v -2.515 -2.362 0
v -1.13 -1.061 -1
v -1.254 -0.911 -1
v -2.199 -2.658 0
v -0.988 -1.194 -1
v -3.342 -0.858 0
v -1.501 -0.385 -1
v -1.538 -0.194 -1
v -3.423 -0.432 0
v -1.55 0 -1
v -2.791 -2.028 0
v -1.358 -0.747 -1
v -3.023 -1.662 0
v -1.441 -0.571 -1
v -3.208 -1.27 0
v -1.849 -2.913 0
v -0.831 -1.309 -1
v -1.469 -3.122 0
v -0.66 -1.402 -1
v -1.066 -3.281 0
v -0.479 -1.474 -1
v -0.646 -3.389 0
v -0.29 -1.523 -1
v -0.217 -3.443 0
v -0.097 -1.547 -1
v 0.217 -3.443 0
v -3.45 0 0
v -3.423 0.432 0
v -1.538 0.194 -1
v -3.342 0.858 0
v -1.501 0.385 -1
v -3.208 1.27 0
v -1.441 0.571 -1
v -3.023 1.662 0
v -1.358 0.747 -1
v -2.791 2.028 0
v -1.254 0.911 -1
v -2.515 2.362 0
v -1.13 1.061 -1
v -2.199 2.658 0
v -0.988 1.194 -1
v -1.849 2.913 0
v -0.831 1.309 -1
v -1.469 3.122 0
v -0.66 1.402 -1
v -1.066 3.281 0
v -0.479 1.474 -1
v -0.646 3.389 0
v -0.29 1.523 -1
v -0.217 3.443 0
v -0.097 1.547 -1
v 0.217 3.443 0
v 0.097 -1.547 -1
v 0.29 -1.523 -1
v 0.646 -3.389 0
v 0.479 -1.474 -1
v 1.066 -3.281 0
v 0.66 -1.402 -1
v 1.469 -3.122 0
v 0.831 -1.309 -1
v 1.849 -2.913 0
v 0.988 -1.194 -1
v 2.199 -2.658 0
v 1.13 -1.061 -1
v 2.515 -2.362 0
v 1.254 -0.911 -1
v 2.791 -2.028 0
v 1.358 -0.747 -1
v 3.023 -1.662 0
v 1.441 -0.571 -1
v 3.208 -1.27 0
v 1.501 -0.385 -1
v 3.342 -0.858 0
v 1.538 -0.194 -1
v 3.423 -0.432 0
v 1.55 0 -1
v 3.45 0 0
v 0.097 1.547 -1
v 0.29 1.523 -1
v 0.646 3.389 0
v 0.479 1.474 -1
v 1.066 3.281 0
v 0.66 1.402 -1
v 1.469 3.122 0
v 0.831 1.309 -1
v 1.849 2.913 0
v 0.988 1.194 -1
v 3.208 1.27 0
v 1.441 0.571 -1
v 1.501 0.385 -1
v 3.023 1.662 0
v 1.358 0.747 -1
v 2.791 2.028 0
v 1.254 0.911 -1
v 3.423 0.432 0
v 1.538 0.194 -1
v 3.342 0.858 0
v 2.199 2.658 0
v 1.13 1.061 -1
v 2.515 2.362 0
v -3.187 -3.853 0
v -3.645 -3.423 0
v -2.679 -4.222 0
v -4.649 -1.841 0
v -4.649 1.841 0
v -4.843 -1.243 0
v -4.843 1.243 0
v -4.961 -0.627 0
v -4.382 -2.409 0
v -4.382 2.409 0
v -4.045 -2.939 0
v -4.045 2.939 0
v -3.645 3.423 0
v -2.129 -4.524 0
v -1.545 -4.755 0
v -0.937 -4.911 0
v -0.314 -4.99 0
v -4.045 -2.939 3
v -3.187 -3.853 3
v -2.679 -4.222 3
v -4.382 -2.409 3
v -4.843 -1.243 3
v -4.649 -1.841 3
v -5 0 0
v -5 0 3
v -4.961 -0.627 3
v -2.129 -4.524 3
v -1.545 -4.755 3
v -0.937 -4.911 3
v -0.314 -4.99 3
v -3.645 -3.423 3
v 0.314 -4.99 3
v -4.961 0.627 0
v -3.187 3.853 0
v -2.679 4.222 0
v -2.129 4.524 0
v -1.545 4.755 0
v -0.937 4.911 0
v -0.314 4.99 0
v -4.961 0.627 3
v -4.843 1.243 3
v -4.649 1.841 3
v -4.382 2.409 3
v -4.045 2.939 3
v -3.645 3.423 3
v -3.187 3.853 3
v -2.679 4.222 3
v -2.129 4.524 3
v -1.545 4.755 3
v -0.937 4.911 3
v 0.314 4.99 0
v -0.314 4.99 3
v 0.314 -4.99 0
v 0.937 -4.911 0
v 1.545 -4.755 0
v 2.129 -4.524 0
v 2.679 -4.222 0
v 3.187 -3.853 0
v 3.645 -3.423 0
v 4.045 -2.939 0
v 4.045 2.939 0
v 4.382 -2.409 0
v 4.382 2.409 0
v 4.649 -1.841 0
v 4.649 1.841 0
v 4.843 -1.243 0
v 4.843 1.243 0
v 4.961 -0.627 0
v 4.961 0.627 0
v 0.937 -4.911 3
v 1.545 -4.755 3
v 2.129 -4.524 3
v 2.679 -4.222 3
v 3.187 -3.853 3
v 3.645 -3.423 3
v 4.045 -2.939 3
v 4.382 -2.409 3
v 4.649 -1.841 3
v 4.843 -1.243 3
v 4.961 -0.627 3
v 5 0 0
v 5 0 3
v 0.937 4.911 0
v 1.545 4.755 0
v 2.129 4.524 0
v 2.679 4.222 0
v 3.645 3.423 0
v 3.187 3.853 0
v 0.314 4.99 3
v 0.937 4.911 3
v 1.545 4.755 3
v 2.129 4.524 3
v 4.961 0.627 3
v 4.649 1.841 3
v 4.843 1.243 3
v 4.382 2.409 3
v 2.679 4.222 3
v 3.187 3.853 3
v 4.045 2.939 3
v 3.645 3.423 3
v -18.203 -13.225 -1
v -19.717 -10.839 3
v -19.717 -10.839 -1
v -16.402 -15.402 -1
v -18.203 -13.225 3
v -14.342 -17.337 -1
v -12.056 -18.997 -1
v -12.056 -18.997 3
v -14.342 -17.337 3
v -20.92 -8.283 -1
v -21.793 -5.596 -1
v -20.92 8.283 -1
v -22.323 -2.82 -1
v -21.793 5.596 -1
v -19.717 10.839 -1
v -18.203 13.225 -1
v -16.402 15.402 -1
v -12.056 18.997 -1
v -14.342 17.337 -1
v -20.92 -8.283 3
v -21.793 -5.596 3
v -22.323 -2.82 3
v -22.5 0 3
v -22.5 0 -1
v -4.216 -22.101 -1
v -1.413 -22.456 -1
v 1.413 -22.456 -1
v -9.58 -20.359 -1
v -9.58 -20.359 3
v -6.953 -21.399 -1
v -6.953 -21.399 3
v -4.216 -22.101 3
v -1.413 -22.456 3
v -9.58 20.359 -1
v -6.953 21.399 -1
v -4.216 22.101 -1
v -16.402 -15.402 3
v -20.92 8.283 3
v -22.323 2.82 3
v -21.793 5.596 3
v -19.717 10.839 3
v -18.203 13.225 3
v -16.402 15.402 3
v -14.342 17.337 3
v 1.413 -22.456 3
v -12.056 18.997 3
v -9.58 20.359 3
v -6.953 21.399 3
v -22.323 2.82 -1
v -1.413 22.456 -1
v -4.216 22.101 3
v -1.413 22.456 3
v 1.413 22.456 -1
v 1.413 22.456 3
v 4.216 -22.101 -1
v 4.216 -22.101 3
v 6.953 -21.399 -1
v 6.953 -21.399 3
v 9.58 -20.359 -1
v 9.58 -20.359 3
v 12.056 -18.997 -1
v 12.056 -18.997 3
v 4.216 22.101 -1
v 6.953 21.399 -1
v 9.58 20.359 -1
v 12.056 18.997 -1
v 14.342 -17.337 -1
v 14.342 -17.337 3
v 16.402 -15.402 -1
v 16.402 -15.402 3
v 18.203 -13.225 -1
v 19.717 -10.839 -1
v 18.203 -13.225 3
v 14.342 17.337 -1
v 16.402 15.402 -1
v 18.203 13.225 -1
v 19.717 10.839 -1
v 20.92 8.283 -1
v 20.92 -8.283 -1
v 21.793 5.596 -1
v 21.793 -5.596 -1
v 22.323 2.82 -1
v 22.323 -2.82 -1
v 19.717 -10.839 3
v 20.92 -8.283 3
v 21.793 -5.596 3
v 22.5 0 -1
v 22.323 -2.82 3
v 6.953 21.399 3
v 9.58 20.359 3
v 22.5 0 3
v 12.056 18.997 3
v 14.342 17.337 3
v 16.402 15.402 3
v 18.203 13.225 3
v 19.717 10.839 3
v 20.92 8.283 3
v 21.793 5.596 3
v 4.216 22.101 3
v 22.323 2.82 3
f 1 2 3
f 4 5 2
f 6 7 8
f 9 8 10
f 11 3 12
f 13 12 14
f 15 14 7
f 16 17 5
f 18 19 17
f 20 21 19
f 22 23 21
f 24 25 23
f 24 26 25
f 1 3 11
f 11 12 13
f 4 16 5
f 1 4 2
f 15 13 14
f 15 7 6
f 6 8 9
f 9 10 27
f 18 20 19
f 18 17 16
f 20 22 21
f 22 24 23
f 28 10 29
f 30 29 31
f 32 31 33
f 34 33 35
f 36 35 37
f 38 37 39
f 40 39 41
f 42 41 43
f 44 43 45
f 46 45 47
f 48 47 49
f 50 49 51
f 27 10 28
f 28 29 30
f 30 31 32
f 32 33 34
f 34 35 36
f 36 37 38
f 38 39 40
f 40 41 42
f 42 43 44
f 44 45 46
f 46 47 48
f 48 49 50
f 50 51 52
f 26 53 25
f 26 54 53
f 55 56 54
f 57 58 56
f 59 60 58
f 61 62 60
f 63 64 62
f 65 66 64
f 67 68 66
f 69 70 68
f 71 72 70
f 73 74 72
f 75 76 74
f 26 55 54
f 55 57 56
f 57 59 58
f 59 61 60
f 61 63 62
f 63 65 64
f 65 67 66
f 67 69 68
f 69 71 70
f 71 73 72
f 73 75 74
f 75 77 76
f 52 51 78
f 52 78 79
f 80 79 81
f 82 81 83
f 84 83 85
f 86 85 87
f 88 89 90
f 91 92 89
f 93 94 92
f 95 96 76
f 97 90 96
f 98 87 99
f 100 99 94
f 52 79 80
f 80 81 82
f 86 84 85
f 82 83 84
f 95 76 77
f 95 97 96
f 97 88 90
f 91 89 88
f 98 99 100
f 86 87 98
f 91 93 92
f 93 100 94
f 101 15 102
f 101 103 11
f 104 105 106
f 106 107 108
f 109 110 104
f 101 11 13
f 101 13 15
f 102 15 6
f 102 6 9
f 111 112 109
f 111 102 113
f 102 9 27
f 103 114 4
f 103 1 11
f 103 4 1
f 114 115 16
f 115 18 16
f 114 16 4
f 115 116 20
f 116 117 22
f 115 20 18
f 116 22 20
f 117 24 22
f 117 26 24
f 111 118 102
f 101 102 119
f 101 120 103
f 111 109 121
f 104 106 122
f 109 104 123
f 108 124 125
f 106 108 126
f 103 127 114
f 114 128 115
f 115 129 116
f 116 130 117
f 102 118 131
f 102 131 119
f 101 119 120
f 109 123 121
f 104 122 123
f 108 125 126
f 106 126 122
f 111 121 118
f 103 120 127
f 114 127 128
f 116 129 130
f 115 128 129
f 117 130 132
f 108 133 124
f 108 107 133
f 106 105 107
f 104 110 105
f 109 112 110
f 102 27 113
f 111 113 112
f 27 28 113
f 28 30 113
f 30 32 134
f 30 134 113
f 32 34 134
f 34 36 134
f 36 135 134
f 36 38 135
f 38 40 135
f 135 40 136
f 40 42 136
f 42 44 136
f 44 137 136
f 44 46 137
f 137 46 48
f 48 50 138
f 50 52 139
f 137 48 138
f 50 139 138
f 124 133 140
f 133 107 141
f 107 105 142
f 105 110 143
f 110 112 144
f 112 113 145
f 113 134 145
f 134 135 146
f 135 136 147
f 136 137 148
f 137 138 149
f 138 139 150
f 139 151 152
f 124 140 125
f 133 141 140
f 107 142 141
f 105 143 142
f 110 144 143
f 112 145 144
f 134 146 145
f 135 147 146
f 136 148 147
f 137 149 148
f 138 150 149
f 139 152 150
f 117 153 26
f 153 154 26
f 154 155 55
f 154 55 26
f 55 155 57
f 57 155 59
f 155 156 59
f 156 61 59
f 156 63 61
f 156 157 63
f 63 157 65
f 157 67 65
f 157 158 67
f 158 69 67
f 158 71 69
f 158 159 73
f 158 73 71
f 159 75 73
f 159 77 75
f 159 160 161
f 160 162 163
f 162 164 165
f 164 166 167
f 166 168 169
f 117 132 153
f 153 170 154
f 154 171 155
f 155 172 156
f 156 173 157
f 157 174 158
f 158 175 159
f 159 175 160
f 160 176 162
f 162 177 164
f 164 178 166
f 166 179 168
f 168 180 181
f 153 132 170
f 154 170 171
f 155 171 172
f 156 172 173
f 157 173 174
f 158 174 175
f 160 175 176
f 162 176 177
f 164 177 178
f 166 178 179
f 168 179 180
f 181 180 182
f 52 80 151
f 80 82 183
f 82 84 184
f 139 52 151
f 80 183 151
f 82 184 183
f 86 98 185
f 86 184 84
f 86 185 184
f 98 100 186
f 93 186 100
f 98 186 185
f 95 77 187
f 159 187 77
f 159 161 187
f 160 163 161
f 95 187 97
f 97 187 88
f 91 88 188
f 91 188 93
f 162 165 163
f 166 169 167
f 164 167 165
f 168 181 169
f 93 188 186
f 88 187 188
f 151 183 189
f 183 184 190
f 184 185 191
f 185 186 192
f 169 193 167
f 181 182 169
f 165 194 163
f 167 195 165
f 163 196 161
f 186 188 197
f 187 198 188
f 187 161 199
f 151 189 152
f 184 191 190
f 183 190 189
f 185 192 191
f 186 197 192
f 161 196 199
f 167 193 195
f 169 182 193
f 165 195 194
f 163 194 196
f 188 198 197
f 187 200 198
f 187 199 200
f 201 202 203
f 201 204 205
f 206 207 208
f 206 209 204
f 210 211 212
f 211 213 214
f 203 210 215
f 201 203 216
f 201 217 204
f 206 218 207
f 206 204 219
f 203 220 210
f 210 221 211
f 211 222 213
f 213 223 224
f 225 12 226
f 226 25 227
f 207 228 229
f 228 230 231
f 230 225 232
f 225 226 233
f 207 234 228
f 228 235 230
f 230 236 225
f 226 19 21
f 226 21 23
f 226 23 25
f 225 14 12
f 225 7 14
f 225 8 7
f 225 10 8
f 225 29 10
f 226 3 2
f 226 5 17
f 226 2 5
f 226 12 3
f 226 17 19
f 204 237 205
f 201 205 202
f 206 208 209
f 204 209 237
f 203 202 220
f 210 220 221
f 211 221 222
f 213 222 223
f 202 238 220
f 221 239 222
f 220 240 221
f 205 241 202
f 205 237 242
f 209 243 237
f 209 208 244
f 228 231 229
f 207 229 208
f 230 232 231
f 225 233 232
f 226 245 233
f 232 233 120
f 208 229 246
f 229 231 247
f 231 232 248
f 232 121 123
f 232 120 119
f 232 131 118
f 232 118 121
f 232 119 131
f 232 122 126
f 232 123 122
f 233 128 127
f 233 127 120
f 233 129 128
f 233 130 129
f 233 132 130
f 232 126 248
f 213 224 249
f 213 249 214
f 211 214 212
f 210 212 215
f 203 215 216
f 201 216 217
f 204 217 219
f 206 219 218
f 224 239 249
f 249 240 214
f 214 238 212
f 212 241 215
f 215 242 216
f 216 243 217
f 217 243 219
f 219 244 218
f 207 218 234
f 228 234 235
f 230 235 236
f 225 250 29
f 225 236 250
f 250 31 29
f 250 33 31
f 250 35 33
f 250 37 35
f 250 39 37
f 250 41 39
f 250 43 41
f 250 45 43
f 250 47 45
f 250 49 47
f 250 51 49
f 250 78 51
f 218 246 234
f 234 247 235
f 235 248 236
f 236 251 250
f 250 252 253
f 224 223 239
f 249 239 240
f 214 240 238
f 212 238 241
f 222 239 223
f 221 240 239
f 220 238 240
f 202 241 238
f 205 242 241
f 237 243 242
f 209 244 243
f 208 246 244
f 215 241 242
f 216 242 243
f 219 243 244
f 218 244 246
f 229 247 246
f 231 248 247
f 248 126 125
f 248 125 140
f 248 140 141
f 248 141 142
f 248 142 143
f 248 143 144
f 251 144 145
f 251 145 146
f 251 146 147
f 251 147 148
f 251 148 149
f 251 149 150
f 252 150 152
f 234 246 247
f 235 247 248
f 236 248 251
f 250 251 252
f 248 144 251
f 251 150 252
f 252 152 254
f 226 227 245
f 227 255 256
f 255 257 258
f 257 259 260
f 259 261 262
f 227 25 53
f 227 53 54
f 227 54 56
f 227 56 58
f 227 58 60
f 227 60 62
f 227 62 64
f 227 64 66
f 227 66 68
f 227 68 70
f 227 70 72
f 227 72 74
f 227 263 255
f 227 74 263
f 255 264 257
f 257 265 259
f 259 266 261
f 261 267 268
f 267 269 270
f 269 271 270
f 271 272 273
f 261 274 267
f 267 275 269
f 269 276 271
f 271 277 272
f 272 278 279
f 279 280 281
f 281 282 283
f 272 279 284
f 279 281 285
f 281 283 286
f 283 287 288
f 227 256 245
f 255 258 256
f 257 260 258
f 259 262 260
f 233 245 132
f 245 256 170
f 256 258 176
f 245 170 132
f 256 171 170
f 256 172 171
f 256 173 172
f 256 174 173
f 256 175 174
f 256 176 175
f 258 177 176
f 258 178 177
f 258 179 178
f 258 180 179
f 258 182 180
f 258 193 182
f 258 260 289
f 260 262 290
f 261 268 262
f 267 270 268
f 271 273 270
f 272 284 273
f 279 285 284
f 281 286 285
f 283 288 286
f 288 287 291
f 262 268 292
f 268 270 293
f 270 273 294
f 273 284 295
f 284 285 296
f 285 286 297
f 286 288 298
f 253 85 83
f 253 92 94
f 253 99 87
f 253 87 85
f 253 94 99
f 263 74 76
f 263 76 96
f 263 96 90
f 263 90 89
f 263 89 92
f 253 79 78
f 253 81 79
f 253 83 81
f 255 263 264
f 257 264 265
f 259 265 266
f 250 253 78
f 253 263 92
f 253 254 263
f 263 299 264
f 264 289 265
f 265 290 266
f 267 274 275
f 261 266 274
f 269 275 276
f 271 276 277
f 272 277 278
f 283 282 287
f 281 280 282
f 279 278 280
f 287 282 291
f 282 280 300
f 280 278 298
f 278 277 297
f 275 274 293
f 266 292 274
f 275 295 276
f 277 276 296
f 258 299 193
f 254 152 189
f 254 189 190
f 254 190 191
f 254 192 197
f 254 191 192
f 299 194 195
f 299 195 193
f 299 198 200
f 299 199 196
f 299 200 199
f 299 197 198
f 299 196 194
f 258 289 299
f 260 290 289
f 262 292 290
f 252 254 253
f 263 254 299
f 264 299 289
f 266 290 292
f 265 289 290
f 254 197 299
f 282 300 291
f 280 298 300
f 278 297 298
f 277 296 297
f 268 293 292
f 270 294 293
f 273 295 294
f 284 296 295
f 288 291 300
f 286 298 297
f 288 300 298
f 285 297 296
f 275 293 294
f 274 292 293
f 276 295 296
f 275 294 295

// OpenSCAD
$fn = 50;

difference() {
	union() {
		translate(v = [0, 0, -1.0]) {
			cylinder(h = 4.0, r = 22.5);
		}
	}
	union() {
		translate(v = [0, 0, 0]) {
			rotate(a = [0, 0, 0]) {
				difference() {
					union() {
						translate(v = [0, 0, -4.0]) {
							cylinder(h = 4.0, r = 1.25);
						}
						translate(v = [0, 0, -1.0]) {
							cylinder(h = 1.0, r1 = 1.55, r2 = 3.45);
						}
						translate(v = [0, 0, -4.0]) {
							cylinder(h = 4.0, r = 1.55);
						}
						translate(v = [0, 0, -4.0]) {
							cylinder(h = 4.0, r = 1.25);
						}
					}
					union();
				}
			}
		}
		#cylinder(h = 3, r = 5.0);
	}
}
